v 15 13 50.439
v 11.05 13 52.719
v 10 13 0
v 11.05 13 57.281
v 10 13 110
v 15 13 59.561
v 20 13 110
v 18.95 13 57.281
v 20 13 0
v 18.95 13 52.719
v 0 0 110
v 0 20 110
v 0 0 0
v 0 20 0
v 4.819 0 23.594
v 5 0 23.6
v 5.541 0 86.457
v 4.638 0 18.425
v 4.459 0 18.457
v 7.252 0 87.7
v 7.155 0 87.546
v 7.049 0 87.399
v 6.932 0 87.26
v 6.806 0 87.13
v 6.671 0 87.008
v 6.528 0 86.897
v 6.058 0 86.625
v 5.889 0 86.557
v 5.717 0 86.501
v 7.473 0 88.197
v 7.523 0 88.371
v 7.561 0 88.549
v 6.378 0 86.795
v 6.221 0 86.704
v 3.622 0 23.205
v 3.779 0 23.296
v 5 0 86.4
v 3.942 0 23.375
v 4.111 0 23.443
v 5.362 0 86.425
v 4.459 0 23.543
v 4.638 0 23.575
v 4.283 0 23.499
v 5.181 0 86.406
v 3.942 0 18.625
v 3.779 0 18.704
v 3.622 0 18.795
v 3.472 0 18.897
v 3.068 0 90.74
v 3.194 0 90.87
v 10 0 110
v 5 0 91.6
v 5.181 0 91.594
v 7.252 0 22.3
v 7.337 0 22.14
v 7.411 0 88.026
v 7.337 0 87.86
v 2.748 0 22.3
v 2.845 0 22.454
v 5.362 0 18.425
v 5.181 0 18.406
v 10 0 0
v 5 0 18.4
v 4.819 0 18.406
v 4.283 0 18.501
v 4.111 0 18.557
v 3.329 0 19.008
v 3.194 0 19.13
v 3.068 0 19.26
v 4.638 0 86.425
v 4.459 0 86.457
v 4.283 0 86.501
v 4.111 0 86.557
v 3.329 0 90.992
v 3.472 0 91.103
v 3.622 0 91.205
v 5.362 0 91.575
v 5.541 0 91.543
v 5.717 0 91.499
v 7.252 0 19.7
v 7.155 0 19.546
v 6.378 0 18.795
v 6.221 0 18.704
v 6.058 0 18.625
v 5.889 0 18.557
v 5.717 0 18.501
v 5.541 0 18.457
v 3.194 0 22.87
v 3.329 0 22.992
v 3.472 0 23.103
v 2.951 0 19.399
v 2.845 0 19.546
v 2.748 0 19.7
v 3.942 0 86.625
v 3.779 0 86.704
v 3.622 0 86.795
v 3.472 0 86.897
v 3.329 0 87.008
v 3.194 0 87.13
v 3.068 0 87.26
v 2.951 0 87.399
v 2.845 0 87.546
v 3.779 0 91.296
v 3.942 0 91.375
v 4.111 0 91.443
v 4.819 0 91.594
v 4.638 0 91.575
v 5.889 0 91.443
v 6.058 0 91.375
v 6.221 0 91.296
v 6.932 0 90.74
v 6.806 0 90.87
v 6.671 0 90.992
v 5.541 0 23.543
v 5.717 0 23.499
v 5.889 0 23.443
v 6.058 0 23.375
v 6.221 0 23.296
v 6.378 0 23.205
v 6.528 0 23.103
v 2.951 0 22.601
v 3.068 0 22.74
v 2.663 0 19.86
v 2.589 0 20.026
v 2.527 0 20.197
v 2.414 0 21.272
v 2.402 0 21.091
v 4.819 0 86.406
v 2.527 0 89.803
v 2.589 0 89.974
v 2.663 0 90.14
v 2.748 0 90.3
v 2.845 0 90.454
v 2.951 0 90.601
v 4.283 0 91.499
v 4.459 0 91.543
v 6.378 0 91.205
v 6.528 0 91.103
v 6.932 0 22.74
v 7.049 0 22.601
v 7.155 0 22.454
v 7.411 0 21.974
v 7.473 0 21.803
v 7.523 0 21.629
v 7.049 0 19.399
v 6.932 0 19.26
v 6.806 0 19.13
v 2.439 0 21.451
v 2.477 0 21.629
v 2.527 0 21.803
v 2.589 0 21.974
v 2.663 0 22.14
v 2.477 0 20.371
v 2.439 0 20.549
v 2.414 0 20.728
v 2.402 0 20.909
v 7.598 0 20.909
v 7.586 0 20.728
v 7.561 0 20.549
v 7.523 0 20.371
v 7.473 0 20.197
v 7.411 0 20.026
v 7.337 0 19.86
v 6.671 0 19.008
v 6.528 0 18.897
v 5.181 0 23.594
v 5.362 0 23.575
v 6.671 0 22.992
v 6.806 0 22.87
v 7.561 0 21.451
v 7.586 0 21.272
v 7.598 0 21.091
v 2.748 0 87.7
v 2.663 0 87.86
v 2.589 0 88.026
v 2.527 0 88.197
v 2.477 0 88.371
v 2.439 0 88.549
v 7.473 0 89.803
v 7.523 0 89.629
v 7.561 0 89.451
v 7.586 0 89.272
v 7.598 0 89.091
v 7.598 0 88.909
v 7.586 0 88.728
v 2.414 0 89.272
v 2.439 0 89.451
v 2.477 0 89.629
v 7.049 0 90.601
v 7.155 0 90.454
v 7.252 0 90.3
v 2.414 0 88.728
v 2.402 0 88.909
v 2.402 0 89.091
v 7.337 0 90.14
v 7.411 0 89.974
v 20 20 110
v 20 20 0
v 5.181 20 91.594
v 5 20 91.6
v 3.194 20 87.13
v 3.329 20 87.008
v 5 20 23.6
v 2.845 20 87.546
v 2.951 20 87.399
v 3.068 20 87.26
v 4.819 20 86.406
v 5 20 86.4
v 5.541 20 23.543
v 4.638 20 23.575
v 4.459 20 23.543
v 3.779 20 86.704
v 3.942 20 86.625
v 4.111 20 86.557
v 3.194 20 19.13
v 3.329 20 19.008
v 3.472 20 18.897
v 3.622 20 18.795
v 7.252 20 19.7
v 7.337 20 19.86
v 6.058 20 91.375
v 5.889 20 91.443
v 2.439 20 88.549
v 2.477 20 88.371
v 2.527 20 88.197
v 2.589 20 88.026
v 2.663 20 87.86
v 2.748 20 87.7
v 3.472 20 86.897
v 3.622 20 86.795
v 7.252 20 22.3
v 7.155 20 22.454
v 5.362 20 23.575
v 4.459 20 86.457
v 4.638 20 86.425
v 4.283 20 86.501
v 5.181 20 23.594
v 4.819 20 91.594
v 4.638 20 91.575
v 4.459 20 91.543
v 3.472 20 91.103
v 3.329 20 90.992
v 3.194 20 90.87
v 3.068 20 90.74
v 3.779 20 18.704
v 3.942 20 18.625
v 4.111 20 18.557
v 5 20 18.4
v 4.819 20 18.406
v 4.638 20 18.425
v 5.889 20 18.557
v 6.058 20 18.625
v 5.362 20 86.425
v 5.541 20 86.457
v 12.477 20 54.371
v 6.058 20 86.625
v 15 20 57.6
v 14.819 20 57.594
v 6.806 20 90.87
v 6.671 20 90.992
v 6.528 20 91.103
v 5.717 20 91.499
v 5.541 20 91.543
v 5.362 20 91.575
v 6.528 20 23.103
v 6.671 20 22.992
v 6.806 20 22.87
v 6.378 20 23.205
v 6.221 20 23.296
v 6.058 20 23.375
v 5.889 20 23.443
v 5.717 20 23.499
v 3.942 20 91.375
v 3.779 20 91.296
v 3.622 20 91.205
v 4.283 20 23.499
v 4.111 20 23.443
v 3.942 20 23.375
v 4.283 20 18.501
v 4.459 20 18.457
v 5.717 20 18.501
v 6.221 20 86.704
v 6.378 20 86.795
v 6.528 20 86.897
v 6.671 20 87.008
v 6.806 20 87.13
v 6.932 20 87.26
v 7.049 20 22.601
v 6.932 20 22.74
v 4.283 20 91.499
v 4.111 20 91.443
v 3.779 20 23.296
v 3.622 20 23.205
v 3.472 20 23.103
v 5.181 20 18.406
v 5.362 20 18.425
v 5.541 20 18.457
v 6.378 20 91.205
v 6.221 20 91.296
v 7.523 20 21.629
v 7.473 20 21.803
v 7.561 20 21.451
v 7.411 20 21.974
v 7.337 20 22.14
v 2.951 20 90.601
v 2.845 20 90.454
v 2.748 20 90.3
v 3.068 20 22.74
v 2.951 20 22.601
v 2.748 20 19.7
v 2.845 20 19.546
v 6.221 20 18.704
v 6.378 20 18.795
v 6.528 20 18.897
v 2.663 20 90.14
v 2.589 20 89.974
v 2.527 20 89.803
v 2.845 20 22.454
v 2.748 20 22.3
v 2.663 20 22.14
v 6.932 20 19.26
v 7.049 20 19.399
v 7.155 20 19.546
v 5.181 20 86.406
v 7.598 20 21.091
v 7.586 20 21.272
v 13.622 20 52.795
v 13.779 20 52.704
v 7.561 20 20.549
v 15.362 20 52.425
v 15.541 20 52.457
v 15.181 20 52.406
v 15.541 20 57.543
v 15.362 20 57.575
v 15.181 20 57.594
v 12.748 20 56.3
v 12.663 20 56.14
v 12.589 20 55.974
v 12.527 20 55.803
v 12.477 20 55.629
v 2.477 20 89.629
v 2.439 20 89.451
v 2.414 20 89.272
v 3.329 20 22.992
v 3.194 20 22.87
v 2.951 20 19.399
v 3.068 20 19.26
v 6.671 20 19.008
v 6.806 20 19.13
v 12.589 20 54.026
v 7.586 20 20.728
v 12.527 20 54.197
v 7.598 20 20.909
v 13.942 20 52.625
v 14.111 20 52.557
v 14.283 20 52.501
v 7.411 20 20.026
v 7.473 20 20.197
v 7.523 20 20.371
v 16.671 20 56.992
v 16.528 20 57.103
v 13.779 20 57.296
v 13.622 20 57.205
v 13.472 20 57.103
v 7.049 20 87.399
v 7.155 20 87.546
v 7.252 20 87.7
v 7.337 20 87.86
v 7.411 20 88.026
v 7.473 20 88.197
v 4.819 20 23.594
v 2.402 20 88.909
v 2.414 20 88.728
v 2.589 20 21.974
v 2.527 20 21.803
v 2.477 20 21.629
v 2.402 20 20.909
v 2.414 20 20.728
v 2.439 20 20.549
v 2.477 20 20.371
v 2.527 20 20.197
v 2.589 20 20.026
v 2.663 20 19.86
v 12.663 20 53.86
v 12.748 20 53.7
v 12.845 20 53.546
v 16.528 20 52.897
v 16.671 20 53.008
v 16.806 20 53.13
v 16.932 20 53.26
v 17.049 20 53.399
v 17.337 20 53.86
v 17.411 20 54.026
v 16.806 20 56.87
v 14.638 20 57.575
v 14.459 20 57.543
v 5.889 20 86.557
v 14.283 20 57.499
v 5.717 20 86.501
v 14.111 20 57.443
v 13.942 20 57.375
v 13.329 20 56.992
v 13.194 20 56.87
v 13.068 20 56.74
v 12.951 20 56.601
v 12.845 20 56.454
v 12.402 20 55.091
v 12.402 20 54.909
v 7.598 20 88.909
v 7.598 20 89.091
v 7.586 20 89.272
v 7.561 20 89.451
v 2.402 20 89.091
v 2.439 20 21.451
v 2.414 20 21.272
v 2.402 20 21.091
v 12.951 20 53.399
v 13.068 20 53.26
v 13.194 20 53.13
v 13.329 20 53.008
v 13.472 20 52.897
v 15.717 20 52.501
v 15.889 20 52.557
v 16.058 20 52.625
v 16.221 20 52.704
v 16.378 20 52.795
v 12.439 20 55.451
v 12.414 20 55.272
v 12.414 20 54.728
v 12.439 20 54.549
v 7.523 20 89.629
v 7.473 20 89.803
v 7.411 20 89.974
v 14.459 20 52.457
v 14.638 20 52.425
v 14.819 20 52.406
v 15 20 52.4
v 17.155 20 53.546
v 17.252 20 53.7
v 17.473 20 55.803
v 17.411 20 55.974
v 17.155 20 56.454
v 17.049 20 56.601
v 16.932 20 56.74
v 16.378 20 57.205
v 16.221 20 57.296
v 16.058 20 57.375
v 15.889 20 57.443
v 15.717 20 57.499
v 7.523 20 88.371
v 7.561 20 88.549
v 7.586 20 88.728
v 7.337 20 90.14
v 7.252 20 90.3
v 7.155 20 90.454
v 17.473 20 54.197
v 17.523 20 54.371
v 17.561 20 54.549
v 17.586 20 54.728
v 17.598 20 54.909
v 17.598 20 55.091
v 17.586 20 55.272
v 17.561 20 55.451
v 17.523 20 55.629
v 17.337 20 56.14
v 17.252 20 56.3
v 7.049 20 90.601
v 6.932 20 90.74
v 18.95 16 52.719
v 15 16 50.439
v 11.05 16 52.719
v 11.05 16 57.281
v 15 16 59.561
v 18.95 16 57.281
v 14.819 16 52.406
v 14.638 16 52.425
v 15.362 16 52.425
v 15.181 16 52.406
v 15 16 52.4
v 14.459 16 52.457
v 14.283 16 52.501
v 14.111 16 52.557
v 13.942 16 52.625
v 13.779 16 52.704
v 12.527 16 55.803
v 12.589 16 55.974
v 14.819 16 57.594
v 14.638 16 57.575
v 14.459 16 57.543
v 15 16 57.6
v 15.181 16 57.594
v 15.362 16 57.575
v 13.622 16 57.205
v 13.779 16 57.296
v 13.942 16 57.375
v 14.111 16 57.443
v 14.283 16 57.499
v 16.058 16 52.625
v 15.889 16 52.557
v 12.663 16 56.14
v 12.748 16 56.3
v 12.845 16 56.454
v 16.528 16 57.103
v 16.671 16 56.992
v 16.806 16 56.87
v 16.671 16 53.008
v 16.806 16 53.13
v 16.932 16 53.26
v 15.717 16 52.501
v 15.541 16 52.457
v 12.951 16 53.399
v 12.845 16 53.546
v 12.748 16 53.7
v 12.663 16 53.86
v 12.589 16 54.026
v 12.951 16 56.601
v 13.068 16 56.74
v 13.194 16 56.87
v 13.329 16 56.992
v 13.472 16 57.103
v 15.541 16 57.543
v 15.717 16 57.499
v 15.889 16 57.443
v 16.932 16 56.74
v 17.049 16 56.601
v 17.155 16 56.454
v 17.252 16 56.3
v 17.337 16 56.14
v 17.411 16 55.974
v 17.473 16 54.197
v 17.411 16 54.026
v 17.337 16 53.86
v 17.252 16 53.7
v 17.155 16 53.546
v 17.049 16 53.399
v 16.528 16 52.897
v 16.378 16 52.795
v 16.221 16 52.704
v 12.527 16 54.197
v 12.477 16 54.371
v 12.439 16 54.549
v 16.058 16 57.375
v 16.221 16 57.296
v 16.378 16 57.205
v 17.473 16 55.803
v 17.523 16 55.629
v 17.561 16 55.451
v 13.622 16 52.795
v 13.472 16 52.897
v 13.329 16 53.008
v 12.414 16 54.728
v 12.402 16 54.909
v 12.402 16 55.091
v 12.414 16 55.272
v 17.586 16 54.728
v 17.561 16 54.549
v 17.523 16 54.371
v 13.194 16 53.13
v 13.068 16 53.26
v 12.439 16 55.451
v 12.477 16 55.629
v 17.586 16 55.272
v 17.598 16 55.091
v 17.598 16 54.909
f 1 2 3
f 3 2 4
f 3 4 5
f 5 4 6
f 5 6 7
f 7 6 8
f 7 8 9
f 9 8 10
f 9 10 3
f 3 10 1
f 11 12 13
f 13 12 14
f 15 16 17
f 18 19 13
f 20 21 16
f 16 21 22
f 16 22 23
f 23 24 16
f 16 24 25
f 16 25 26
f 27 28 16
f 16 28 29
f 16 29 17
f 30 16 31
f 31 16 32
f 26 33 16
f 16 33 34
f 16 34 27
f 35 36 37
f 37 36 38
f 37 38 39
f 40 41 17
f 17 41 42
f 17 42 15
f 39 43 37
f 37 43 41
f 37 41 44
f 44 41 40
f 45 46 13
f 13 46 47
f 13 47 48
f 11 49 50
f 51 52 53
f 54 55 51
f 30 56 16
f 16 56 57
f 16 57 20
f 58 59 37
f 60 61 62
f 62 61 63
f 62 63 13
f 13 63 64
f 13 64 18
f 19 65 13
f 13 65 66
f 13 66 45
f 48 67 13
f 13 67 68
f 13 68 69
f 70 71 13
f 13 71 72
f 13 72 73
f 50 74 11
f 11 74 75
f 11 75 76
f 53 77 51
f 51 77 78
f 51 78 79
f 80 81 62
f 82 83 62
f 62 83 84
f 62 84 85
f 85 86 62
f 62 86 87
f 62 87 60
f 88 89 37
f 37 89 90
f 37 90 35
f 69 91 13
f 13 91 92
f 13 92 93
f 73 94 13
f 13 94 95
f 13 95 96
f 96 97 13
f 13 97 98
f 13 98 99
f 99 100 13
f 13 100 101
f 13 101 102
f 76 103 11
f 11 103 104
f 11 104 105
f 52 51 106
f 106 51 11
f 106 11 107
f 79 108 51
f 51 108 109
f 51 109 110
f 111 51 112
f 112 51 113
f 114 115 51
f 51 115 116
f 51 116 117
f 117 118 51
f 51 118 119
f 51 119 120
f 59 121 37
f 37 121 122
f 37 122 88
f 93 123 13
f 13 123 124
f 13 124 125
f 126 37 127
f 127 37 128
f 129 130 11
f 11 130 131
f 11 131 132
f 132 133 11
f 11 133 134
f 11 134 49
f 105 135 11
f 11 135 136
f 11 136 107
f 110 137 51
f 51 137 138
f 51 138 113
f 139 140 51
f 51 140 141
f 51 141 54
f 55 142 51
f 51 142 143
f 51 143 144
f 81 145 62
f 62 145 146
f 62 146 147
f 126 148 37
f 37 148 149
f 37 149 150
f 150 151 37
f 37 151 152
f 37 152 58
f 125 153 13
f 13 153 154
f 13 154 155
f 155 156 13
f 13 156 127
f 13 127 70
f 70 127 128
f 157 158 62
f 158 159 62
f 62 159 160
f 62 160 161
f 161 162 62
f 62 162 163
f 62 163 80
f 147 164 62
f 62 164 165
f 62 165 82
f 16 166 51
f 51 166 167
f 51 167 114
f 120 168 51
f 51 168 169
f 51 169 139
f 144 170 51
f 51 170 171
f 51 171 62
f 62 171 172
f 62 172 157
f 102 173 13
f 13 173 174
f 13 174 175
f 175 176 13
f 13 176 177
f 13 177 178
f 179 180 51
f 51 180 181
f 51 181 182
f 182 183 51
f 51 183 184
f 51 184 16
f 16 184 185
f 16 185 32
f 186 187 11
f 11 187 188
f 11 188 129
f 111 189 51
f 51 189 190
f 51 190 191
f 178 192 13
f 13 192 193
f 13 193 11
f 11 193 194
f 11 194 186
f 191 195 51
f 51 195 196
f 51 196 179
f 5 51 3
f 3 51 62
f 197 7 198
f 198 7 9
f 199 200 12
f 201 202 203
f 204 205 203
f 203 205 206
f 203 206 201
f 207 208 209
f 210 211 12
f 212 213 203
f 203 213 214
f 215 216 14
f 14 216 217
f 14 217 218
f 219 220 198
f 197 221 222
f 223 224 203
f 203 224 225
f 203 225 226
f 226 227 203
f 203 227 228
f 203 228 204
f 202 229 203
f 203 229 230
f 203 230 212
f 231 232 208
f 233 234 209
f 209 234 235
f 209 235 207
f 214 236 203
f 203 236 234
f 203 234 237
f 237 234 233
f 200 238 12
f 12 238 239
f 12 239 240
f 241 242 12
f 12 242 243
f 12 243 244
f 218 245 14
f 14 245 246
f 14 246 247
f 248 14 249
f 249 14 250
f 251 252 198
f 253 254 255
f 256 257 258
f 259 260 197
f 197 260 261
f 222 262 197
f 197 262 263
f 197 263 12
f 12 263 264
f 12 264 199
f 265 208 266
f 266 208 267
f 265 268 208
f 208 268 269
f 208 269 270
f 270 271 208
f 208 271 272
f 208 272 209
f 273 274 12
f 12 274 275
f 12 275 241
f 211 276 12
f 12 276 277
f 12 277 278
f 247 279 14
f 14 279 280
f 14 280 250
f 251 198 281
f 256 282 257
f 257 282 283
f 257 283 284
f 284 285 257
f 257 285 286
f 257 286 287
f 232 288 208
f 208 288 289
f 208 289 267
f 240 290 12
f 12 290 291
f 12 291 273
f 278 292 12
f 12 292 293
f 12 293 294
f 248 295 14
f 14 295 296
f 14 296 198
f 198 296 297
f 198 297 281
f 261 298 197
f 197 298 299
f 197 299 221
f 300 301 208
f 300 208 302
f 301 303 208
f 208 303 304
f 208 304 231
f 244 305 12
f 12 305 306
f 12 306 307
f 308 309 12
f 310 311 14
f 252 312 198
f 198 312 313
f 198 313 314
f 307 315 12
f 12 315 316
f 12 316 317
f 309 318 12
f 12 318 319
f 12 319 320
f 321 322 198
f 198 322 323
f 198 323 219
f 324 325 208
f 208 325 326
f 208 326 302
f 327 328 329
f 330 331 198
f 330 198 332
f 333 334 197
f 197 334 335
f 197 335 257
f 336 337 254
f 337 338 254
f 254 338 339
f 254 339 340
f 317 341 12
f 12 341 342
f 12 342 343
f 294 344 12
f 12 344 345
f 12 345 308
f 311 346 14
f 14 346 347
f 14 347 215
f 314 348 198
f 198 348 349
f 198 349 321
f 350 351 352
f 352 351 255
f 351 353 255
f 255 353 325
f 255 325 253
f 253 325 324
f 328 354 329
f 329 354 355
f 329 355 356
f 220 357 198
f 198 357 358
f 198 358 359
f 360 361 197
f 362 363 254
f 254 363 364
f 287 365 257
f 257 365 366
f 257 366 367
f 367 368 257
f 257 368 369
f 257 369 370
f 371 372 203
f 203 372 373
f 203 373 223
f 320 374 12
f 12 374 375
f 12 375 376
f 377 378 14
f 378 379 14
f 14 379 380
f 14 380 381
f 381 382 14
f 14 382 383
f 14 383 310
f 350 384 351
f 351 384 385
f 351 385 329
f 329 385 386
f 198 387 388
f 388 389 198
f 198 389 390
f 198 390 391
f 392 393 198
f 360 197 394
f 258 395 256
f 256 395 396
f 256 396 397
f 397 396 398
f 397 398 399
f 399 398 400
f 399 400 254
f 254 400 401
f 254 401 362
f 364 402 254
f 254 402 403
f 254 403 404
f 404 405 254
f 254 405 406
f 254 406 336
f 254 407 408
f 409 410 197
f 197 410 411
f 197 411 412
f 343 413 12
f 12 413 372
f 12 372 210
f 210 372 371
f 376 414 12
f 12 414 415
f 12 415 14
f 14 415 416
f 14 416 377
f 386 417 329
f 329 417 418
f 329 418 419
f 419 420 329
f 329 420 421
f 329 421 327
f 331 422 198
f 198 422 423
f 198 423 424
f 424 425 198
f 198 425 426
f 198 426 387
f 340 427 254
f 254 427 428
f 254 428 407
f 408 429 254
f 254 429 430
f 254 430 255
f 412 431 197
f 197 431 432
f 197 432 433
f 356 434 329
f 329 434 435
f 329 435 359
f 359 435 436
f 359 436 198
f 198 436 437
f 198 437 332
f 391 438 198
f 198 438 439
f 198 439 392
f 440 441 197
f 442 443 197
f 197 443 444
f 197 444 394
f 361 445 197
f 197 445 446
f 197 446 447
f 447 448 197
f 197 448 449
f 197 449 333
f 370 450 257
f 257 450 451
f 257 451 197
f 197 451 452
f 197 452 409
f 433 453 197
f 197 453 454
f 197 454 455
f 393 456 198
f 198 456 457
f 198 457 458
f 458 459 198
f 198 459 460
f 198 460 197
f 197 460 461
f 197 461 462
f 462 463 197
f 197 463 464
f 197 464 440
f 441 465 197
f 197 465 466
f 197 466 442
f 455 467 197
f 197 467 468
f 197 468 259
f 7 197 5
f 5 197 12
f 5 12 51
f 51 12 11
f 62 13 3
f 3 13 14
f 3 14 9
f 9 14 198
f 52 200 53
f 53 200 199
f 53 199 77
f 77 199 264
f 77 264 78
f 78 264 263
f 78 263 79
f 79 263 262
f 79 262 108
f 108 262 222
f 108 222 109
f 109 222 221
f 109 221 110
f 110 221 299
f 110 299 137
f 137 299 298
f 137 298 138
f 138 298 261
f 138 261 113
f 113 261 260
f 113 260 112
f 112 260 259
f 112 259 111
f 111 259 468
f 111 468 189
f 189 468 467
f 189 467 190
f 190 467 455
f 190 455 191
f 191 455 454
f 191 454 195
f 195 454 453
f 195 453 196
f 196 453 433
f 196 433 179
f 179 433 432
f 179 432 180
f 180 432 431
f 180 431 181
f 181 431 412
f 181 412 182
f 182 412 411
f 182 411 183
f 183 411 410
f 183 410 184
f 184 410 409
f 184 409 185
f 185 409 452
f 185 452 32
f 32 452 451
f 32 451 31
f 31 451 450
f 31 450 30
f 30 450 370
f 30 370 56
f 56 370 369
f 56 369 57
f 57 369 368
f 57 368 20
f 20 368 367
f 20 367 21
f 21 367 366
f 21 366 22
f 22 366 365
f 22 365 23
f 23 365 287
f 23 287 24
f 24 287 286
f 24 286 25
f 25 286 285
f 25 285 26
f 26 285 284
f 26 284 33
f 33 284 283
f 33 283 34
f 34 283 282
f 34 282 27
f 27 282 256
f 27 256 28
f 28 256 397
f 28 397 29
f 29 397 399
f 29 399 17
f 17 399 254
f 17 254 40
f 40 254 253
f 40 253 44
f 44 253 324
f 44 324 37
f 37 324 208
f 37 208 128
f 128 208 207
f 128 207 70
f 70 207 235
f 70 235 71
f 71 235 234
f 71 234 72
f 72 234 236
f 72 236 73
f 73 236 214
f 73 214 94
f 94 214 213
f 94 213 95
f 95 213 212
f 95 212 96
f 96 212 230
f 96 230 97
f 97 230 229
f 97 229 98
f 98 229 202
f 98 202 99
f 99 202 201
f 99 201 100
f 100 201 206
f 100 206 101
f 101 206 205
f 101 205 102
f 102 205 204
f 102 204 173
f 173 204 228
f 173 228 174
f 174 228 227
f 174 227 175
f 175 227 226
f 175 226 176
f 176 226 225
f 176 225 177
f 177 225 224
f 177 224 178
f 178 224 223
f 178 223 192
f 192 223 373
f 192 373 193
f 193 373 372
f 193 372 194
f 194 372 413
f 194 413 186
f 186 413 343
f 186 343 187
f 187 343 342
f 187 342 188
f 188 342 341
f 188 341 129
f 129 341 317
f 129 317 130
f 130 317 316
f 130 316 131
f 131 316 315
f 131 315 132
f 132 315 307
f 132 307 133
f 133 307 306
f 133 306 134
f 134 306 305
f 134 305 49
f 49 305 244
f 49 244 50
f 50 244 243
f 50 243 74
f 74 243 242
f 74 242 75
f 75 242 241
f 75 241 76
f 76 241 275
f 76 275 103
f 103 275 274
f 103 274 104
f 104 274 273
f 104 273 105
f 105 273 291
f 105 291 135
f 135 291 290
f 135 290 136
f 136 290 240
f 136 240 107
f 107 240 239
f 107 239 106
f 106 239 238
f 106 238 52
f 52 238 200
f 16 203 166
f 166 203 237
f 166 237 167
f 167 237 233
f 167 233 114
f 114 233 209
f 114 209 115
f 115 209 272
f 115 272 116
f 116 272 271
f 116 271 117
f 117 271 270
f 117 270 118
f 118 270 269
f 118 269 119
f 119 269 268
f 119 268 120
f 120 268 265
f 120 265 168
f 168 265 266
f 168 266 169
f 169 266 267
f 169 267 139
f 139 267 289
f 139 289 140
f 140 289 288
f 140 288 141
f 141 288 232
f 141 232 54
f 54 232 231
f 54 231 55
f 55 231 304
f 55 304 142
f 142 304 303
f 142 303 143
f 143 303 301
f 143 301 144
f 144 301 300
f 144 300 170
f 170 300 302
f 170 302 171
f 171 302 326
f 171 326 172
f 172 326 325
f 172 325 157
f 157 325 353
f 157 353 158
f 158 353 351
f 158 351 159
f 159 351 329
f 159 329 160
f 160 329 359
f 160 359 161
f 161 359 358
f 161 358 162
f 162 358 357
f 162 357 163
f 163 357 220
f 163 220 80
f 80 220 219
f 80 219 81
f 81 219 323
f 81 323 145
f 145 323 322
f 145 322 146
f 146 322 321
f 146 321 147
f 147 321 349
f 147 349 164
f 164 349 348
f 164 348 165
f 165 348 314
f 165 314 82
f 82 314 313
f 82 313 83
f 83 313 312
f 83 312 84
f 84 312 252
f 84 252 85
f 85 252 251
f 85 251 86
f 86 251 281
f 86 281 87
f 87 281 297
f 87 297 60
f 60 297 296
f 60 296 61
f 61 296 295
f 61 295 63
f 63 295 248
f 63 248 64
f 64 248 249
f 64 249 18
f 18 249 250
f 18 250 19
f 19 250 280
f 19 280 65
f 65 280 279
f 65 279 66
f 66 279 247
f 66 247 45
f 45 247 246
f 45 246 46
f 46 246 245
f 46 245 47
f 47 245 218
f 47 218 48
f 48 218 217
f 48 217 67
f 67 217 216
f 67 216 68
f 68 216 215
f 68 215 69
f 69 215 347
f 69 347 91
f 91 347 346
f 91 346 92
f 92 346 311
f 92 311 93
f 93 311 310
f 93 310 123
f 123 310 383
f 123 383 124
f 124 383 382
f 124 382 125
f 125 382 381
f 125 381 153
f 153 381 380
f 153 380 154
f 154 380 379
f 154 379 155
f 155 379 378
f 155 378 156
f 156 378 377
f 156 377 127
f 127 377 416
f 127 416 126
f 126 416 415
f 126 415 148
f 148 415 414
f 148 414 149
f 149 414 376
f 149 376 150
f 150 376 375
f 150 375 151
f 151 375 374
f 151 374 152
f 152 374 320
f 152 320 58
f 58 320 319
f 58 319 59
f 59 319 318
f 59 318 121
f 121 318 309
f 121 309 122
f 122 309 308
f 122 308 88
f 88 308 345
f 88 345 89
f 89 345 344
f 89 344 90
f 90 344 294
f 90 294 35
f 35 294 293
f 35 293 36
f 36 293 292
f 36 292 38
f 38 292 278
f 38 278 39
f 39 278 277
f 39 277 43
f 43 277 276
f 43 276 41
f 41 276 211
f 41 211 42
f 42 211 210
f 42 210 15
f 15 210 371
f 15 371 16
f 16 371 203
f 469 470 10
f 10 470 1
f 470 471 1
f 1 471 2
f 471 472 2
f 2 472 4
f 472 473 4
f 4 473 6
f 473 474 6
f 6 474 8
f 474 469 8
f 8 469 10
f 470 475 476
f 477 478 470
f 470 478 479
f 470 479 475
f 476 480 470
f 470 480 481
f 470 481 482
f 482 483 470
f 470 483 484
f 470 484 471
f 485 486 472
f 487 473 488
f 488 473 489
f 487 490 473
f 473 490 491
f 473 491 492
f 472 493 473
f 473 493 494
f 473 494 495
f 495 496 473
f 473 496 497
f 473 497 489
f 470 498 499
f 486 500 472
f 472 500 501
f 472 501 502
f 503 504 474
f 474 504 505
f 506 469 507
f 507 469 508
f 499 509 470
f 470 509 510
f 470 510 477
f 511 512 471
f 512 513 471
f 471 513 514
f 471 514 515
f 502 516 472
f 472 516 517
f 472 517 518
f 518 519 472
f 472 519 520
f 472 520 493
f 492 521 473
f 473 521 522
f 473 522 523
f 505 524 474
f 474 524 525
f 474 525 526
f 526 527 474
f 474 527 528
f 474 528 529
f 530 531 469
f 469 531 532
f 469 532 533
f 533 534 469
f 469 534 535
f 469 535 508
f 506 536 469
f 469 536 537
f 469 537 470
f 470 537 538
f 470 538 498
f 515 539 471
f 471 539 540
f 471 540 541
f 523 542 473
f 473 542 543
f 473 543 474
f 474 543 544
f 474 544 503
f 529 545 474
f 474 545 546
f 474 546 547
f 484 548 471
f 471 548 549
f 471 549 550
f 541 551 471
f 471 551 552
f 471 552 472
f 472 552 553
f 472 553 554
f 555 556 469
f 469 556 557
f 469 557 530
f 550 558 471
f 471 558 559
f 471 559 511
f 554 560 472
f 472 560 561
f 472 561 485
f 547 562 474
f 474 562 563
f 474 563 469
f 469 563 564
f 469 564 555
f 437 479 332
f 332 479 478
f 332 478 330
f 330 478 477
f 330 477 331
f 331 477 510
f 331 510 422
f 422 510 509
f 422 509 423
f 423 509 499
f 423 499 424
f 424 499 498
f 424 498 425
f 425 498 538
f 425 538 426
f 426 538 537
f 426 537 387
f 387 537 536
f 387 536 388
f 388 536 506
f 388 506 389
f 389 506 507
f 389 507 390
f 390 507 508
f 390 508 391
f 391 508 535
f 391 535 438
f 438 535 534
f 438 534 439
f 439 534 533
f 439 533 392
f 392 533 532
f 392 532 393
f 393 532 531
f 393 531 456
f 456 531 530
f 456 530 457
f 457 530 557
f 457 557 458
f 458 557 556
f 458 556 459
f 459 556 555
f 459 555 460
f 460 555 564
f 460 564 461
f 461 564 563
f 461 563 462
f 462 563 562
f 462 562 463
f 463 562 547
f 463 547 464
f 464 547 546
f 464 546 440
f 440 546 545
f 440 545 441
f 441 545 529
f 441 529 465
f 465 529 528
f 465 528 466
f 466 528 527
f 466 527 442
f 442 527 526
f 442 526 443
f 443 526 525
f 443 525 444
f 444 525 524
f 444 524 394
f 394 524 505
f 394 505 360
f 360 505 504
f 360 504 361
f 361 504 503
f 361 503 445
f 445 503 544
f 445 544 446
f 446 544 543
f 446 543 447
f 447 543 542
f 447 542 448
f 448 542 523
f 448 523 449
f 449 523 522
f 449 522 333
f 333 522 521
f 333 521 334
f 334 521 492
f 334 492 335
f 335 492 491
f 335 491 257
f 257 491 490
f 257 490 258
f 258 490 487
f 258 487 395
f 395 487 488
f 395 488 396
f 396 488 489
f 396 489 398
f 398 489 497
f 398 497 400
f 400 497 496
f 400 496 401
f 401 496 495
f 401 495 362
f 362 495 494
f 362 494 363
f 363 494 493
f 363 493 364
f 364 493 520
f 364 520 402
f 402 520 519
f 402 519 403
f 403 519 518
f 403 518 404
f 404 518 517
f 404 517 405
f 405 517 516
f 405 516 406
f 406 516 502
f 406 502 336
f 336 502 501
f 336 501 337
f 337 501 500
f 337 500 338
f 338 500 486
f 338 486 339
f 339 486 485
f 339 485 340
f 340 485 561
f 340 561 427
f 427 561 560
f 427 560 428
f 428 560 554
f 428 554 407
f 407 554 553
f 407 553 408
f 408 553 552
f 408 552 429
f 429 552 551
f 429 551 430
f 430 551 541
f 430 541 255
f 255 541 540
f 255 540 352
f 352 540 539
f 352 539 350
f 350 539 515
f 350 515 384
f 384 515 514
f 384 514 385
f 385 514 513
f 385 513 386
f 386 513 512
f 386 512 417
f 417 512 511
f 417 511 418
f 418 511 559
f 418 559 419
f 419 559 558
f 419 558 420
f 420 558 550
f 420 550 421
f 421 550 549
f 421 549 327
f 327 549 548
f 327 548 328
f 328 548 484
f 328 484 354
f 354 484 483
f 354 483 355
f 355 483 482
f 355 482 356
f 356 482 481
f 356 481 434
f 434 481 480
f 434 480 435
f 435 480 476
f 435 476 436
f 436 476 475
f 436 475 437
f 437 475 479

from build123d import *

# Parameters (mm, degrees)
BOSS_EXTRUDE1_DEPTH = 110
SKETCH2_R           = 2.6
CUT_EXTRUDE1_DEPTH  = 110
CUT_EXTRUDE2_START  = -7
CUT_EXTRUDE2_DEPTH  = 3
SKETCH4_R           = 2.6
CUT_EXTRUDE3_DEPTH  = 13


with BuildPart() as part:
    # Sketch1 → Boss-Extrude1 (new body)
    with BuildSketch(Plane.XY):
        Polygon((0, 0), (10, 0), (10, 13), (20, 13), (20, 20), (10, 20), (0, 20), align=None)
    extrude(amount=BOSS_EXTRUDE1_DEPTH)

    # Sketch2 → Cut-Extrude1 (cut)
    with BuildSketch(Plane(origin=(0, 20, 0), x_dir=(1, 0, 0), z_dir=(0, 1, 0))):
        with Locations((5, -21)):
            Circle(SKETCH2_R)
        with Locations((5, -89)):
            Circle(SKETCH2_R)
    extrude(amount=-CUT_EXTRUDE1_DEPTH, mode=Mode.SUBTRACT)

    # Sketch3 → Cut-Extrude2 (cut)
    with BuildSketch(Plane(origin=(0, 20, 0), x_dir=(1, 0, 0), z_dir=(0, 1, 0)).offset(CUT_EXTRUDE2_START)):
        Polygon((15, -50.438932873), (11.05, -52.719466437), (11.05, -57.280533563), (15, -59.561067127), (18.95, -57.280533563), (18.95, -52.719466437), align=None)
    extrude(amount=CUT_EXTRUDE2_DEPTH, mode=Mode.SUBTRACT)

    # Sketch4 → Cut-Extrude3 (cut)
    with BuildSketch(Plane.XZ.offset(-16)):
        with Locations((15, 55)):
            Circle(SKETCH4_R)
    extrude(amount=-CUT_EXTRUDE3_DEPTH, mode=Mode.SUBTRACT)


solid = part.part
